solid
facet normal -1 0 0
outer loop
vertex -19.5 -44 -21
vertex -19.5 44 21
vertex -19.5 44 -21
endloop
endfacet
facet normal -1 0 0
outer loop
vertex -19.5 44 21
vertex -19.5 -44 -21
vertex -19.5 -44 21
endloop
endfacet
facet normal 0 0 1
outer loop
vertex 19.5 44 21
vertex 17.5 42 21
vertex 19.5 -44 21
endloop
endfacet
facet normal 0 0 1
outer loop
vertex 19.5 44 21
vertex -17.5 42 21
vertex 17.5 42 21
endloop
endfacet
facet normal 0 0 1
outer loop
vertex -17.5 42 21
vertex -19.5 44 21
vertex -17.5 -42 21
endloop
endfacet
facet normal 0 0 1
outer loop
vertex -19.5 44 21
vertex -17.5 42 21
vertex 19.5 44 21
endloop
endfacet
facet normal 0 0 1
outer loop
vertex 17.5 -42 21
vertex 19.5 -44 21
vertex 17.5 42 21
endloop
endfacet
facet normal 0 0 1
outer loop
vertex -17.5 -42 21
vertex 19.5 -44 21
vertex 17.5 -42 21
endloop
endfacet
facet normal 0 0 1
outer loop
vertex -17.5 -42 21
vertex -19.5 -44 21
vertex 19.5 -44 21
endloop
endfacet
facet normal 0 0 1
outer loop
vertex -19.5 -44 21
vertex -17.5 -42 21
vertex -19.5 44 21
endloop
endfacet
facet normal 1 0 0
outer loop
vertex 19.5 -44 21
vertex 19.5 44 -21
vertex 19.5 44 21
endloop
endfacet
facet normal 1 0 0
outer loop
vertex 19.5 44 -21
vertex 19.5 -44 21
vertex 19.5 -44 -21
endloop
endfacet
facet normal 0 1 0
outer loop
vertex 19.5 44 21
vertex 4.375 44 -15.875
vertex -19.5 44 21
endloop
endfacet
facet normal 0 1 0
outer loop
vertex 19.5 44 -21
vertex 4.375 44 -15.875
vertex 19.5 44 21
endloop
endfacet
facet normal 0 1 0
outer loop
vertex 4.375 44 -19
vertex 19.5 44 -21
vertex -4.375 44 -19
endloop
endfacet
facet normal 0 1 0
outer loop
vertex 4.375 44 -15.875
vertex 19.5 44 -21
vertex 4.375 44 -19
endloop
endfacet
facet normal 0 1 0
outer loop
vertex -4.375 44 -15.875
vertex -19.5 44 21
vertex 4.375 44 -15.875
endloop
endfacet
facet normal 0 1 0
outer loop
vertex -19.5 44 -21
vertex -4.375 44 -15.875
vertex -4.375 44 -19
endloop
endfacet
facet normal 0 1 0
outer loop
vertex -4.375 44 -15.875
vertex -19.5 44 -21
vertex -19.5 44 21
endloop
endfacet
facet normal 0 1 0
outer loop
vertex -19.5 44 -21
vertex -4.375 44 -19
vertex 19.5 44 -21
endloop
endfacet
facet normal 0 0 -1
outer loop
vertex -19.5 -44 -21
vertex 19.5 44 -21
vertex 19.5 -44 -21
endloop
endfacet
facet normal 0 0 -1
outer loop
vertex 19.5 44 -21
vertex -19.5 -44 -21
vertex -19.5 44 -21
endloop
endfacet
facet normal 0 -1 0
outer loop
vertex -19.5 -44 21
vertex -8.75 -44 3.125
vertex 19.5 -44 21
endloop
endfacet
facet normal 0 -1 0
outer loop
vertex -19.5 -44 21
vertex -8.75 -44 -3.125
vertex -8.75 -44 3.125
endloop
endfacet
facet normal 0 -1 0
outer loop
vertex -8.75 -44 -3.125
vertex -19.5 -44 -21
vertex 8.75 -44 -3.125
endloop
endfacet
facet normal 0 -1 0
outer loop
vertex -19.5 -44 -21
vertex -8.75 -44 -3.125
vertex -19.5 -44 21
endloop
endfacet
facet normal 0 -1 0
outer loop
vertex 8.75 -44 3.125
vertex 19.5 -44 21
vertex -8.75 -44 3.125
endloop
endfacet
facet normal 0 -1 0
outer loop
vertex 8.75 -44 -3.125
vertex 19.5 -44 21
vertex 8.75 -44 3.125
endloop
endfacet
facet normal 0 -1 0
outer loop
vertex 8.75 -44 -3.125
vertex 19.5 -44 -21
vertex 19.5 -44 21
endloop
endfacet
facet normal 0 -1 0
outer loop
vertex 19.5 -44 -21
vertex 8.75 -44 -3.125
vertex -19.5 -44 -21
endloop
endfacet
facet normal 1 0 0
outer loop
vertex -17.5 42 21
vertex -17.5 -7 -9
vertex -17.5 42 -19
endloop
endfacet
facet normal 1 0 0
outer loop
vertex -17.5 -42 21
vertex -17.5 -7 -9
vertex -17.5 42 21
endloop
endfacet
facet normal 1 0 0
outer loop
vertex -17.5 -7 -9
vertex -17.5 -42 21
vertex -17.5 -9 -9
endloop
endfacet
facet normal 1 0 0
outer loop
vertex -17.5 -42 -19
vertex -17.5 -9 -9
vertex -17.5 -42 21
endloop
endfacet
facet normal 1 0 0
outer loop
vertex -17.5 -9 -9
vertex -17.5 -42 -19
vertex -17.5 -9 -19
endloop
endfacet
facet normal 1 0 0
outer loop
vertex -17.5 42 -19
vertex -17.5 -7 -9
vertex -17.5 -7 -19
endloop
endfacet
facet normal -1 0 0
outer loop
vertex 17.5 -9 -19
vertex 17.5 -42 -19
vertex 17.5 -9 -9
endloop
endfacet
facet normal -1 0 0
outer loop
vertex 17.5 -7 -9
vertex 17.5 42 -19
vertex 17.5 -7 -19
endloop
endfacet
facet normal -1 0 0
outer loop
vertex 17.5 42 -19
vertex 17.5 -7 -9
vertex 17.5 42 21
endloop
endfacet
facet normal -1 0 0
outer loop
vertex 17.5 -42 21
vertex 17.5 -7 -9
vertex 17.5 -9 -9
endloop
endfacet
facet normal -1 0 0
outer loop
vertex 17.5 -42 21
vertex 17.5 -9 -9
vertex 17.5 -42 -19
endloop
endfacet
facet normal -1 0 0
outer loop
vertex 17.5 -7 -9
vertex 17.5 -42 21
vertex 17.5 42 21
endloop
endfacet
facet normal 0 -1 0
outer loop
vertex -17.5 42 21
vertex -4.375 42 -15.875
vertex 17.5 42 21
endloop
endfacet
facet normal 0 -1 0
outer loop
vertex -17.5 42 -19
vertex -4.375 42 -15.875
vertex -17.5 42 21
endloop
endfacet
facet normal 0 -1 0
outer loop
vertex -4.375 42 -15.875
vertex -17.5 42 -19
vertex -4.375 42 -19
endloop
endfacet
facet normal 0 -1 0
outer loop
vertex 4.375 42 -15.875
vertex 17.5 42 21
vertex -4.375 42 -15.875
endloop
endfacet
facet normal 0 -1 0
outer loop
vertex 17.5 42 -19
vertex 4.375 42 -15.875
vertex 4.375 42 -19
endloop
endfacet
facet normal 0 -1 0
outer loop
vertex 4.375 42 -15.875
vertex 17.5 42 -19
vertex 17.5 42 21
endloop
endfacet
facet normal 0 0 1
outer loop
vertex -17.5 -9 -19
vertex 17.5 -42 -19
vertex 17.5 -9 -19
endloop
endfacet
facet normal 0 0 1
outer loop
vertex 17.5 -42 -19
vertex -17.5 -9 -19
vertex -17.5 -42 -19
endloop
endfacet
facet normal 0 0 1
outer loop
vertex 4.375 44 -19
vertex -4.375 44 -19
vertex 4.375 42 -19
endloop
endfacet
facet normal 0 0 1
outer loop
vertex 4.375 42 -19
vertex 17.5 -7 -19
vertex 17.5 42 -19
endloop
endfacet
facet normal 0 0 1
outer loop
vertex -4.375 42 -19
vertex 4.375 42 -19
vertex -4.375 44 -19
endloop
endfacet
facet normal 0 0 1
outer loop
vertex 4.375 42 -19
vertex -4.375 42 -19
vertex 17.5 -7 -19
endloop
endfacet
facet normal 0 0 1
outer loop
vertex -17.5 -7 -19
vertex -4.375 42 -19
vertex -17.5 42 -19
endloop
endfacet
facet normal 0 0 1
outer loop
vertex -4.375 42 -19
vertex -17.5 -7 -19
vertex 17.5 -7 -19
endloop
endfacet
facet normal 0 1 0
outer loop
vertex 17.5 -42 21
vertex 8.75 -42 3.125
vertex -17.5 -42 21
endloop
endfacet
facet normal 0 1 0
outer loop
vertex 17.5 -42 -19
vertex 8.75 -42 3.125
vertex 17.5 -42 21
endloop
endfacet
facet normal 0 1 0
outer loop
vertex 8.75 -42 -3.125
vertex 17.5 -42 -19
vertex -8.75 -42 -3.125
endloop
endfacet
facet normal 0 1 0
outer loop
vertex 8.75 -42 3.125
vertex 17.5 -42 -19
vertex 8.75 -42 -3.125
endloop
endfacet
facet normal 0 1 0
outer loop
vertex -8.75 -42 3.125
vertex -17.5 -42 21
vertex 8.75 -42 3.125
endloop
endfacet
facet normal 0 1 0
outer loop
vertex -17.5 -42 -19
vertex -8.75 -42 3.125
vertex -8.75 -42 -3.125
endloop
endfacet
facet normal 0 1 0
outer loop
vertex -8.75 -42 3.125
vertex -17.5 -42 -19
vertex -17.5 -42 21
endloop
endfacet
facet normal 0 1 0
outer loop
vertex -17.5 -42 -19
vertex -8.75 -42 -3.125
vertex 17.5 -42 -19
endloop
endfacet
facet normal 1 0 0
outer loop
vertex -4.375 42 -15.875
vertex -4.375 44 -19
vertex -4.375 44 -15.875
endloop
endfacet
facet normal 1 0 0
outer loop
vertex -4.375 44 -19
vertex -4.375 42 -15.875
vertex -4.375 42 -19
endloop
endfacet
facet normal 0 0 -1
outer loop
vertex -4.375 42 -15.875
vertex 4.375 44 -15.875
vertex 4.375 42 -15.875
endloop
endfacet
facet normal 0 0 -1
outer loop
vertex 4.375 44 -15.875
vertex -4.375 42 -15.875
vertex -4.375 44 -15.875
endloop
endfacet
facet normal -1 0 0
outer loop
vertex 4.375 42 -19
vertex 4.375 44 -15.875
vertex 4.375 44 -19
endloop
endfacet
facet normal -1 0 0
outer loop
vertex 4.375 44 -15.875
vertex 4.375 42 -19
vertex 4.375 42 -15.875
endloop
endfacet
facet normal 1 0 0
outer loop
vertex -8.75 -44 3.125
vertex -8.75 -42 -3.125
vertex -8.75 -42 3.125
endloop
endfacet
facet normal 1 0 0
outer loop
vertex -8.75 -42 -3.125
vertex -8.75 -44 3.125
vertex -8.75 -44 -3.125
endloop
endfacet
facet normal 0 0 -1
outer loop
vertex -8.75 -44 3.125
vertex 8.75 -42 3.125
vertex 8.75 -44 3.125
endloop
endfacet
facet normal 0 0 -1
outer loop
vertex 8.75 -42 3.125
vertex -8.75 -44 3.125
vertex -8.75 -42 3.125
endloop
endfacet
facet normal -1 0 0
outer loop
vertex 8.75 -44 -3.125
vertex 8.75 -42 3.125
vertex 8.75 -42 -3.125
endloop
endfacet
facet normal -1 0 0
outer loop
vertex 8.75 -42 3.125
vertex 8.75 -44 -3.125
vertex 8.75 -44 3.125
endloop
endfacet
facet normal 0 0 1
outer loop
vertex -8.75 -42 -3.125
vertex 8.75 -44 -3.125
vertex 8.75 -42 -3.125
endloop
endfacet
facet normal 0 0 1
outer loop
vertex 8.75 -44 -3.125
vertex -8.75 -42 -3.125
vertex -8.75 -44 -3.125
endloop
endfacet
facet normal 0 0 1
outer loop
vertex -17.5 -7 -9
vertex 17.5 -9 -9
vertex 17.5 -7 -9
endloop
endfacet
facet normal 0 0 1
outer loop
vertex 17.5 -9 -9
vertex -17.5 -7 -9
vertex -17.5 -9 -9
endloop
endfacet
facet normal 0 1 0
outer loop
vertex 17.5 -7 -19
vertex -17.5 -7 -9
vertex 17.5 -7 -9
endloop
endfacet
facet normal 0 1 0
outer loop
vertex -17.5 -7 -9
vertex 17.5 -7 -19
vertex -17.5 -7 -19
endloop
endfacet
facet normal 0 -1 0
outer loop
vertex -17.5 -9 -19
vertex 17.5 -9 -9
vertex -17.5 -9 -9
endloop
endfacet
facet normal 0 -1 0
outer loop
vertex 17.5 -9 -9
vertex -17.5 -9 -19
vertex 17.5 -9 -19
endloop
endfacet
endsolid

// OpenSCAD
esp8266Height = 48;
uln2003Height = 34;
wallThickness = 2;

insideWidth = 35;
insideHeight = 82 + /* Divider */ wallThickness;
insideDepth = 40;


caseWidth = insideWidth + (wallThickness * 2);
caseHeight = insideHeight + (wallThickness * 2);
caseDepth = insideDepth + wallThickness;



difference() {
    cube([caseWidth, caseHeight, caseDepth], center = true);
    translate([0, 0, wallThickness / 2]) {
        cube([insideWidth, insideHeight, insideDepth], center = true);
    };
    
    // Port #1 (USB)
    portOneWidth = insideWidth / 4;
    portOneDepth = 3.125;
    
    translate([0, caseHeight / 2, -(caseDepth / 2) + (portOneDepth / 2) + wallThickness]) {
        cube([portOneWidth, insideHeight / 2, portOneDepth], center = true);
    }
    
    // Port #2 (JST)
    portTwoWidth = insideWidth / 2;
    portTwoDepth = 6.25;
    
    translate([0, -(insideHeight / 2), 0]) {
        cube([portTwoWidth, insideHeight / 2, portTwoDepth], center = true);
    }
}

// Divider
dividerDepth = insideDepth / 4;

translate([0, -((insideHeight / 2) - uln2003Height), -(caseDepth / 2) + (dividerDepth / 2) + wallThickness]) {
    cube([insideWidth, wallThickness, dividerDepth], center = true);
}
